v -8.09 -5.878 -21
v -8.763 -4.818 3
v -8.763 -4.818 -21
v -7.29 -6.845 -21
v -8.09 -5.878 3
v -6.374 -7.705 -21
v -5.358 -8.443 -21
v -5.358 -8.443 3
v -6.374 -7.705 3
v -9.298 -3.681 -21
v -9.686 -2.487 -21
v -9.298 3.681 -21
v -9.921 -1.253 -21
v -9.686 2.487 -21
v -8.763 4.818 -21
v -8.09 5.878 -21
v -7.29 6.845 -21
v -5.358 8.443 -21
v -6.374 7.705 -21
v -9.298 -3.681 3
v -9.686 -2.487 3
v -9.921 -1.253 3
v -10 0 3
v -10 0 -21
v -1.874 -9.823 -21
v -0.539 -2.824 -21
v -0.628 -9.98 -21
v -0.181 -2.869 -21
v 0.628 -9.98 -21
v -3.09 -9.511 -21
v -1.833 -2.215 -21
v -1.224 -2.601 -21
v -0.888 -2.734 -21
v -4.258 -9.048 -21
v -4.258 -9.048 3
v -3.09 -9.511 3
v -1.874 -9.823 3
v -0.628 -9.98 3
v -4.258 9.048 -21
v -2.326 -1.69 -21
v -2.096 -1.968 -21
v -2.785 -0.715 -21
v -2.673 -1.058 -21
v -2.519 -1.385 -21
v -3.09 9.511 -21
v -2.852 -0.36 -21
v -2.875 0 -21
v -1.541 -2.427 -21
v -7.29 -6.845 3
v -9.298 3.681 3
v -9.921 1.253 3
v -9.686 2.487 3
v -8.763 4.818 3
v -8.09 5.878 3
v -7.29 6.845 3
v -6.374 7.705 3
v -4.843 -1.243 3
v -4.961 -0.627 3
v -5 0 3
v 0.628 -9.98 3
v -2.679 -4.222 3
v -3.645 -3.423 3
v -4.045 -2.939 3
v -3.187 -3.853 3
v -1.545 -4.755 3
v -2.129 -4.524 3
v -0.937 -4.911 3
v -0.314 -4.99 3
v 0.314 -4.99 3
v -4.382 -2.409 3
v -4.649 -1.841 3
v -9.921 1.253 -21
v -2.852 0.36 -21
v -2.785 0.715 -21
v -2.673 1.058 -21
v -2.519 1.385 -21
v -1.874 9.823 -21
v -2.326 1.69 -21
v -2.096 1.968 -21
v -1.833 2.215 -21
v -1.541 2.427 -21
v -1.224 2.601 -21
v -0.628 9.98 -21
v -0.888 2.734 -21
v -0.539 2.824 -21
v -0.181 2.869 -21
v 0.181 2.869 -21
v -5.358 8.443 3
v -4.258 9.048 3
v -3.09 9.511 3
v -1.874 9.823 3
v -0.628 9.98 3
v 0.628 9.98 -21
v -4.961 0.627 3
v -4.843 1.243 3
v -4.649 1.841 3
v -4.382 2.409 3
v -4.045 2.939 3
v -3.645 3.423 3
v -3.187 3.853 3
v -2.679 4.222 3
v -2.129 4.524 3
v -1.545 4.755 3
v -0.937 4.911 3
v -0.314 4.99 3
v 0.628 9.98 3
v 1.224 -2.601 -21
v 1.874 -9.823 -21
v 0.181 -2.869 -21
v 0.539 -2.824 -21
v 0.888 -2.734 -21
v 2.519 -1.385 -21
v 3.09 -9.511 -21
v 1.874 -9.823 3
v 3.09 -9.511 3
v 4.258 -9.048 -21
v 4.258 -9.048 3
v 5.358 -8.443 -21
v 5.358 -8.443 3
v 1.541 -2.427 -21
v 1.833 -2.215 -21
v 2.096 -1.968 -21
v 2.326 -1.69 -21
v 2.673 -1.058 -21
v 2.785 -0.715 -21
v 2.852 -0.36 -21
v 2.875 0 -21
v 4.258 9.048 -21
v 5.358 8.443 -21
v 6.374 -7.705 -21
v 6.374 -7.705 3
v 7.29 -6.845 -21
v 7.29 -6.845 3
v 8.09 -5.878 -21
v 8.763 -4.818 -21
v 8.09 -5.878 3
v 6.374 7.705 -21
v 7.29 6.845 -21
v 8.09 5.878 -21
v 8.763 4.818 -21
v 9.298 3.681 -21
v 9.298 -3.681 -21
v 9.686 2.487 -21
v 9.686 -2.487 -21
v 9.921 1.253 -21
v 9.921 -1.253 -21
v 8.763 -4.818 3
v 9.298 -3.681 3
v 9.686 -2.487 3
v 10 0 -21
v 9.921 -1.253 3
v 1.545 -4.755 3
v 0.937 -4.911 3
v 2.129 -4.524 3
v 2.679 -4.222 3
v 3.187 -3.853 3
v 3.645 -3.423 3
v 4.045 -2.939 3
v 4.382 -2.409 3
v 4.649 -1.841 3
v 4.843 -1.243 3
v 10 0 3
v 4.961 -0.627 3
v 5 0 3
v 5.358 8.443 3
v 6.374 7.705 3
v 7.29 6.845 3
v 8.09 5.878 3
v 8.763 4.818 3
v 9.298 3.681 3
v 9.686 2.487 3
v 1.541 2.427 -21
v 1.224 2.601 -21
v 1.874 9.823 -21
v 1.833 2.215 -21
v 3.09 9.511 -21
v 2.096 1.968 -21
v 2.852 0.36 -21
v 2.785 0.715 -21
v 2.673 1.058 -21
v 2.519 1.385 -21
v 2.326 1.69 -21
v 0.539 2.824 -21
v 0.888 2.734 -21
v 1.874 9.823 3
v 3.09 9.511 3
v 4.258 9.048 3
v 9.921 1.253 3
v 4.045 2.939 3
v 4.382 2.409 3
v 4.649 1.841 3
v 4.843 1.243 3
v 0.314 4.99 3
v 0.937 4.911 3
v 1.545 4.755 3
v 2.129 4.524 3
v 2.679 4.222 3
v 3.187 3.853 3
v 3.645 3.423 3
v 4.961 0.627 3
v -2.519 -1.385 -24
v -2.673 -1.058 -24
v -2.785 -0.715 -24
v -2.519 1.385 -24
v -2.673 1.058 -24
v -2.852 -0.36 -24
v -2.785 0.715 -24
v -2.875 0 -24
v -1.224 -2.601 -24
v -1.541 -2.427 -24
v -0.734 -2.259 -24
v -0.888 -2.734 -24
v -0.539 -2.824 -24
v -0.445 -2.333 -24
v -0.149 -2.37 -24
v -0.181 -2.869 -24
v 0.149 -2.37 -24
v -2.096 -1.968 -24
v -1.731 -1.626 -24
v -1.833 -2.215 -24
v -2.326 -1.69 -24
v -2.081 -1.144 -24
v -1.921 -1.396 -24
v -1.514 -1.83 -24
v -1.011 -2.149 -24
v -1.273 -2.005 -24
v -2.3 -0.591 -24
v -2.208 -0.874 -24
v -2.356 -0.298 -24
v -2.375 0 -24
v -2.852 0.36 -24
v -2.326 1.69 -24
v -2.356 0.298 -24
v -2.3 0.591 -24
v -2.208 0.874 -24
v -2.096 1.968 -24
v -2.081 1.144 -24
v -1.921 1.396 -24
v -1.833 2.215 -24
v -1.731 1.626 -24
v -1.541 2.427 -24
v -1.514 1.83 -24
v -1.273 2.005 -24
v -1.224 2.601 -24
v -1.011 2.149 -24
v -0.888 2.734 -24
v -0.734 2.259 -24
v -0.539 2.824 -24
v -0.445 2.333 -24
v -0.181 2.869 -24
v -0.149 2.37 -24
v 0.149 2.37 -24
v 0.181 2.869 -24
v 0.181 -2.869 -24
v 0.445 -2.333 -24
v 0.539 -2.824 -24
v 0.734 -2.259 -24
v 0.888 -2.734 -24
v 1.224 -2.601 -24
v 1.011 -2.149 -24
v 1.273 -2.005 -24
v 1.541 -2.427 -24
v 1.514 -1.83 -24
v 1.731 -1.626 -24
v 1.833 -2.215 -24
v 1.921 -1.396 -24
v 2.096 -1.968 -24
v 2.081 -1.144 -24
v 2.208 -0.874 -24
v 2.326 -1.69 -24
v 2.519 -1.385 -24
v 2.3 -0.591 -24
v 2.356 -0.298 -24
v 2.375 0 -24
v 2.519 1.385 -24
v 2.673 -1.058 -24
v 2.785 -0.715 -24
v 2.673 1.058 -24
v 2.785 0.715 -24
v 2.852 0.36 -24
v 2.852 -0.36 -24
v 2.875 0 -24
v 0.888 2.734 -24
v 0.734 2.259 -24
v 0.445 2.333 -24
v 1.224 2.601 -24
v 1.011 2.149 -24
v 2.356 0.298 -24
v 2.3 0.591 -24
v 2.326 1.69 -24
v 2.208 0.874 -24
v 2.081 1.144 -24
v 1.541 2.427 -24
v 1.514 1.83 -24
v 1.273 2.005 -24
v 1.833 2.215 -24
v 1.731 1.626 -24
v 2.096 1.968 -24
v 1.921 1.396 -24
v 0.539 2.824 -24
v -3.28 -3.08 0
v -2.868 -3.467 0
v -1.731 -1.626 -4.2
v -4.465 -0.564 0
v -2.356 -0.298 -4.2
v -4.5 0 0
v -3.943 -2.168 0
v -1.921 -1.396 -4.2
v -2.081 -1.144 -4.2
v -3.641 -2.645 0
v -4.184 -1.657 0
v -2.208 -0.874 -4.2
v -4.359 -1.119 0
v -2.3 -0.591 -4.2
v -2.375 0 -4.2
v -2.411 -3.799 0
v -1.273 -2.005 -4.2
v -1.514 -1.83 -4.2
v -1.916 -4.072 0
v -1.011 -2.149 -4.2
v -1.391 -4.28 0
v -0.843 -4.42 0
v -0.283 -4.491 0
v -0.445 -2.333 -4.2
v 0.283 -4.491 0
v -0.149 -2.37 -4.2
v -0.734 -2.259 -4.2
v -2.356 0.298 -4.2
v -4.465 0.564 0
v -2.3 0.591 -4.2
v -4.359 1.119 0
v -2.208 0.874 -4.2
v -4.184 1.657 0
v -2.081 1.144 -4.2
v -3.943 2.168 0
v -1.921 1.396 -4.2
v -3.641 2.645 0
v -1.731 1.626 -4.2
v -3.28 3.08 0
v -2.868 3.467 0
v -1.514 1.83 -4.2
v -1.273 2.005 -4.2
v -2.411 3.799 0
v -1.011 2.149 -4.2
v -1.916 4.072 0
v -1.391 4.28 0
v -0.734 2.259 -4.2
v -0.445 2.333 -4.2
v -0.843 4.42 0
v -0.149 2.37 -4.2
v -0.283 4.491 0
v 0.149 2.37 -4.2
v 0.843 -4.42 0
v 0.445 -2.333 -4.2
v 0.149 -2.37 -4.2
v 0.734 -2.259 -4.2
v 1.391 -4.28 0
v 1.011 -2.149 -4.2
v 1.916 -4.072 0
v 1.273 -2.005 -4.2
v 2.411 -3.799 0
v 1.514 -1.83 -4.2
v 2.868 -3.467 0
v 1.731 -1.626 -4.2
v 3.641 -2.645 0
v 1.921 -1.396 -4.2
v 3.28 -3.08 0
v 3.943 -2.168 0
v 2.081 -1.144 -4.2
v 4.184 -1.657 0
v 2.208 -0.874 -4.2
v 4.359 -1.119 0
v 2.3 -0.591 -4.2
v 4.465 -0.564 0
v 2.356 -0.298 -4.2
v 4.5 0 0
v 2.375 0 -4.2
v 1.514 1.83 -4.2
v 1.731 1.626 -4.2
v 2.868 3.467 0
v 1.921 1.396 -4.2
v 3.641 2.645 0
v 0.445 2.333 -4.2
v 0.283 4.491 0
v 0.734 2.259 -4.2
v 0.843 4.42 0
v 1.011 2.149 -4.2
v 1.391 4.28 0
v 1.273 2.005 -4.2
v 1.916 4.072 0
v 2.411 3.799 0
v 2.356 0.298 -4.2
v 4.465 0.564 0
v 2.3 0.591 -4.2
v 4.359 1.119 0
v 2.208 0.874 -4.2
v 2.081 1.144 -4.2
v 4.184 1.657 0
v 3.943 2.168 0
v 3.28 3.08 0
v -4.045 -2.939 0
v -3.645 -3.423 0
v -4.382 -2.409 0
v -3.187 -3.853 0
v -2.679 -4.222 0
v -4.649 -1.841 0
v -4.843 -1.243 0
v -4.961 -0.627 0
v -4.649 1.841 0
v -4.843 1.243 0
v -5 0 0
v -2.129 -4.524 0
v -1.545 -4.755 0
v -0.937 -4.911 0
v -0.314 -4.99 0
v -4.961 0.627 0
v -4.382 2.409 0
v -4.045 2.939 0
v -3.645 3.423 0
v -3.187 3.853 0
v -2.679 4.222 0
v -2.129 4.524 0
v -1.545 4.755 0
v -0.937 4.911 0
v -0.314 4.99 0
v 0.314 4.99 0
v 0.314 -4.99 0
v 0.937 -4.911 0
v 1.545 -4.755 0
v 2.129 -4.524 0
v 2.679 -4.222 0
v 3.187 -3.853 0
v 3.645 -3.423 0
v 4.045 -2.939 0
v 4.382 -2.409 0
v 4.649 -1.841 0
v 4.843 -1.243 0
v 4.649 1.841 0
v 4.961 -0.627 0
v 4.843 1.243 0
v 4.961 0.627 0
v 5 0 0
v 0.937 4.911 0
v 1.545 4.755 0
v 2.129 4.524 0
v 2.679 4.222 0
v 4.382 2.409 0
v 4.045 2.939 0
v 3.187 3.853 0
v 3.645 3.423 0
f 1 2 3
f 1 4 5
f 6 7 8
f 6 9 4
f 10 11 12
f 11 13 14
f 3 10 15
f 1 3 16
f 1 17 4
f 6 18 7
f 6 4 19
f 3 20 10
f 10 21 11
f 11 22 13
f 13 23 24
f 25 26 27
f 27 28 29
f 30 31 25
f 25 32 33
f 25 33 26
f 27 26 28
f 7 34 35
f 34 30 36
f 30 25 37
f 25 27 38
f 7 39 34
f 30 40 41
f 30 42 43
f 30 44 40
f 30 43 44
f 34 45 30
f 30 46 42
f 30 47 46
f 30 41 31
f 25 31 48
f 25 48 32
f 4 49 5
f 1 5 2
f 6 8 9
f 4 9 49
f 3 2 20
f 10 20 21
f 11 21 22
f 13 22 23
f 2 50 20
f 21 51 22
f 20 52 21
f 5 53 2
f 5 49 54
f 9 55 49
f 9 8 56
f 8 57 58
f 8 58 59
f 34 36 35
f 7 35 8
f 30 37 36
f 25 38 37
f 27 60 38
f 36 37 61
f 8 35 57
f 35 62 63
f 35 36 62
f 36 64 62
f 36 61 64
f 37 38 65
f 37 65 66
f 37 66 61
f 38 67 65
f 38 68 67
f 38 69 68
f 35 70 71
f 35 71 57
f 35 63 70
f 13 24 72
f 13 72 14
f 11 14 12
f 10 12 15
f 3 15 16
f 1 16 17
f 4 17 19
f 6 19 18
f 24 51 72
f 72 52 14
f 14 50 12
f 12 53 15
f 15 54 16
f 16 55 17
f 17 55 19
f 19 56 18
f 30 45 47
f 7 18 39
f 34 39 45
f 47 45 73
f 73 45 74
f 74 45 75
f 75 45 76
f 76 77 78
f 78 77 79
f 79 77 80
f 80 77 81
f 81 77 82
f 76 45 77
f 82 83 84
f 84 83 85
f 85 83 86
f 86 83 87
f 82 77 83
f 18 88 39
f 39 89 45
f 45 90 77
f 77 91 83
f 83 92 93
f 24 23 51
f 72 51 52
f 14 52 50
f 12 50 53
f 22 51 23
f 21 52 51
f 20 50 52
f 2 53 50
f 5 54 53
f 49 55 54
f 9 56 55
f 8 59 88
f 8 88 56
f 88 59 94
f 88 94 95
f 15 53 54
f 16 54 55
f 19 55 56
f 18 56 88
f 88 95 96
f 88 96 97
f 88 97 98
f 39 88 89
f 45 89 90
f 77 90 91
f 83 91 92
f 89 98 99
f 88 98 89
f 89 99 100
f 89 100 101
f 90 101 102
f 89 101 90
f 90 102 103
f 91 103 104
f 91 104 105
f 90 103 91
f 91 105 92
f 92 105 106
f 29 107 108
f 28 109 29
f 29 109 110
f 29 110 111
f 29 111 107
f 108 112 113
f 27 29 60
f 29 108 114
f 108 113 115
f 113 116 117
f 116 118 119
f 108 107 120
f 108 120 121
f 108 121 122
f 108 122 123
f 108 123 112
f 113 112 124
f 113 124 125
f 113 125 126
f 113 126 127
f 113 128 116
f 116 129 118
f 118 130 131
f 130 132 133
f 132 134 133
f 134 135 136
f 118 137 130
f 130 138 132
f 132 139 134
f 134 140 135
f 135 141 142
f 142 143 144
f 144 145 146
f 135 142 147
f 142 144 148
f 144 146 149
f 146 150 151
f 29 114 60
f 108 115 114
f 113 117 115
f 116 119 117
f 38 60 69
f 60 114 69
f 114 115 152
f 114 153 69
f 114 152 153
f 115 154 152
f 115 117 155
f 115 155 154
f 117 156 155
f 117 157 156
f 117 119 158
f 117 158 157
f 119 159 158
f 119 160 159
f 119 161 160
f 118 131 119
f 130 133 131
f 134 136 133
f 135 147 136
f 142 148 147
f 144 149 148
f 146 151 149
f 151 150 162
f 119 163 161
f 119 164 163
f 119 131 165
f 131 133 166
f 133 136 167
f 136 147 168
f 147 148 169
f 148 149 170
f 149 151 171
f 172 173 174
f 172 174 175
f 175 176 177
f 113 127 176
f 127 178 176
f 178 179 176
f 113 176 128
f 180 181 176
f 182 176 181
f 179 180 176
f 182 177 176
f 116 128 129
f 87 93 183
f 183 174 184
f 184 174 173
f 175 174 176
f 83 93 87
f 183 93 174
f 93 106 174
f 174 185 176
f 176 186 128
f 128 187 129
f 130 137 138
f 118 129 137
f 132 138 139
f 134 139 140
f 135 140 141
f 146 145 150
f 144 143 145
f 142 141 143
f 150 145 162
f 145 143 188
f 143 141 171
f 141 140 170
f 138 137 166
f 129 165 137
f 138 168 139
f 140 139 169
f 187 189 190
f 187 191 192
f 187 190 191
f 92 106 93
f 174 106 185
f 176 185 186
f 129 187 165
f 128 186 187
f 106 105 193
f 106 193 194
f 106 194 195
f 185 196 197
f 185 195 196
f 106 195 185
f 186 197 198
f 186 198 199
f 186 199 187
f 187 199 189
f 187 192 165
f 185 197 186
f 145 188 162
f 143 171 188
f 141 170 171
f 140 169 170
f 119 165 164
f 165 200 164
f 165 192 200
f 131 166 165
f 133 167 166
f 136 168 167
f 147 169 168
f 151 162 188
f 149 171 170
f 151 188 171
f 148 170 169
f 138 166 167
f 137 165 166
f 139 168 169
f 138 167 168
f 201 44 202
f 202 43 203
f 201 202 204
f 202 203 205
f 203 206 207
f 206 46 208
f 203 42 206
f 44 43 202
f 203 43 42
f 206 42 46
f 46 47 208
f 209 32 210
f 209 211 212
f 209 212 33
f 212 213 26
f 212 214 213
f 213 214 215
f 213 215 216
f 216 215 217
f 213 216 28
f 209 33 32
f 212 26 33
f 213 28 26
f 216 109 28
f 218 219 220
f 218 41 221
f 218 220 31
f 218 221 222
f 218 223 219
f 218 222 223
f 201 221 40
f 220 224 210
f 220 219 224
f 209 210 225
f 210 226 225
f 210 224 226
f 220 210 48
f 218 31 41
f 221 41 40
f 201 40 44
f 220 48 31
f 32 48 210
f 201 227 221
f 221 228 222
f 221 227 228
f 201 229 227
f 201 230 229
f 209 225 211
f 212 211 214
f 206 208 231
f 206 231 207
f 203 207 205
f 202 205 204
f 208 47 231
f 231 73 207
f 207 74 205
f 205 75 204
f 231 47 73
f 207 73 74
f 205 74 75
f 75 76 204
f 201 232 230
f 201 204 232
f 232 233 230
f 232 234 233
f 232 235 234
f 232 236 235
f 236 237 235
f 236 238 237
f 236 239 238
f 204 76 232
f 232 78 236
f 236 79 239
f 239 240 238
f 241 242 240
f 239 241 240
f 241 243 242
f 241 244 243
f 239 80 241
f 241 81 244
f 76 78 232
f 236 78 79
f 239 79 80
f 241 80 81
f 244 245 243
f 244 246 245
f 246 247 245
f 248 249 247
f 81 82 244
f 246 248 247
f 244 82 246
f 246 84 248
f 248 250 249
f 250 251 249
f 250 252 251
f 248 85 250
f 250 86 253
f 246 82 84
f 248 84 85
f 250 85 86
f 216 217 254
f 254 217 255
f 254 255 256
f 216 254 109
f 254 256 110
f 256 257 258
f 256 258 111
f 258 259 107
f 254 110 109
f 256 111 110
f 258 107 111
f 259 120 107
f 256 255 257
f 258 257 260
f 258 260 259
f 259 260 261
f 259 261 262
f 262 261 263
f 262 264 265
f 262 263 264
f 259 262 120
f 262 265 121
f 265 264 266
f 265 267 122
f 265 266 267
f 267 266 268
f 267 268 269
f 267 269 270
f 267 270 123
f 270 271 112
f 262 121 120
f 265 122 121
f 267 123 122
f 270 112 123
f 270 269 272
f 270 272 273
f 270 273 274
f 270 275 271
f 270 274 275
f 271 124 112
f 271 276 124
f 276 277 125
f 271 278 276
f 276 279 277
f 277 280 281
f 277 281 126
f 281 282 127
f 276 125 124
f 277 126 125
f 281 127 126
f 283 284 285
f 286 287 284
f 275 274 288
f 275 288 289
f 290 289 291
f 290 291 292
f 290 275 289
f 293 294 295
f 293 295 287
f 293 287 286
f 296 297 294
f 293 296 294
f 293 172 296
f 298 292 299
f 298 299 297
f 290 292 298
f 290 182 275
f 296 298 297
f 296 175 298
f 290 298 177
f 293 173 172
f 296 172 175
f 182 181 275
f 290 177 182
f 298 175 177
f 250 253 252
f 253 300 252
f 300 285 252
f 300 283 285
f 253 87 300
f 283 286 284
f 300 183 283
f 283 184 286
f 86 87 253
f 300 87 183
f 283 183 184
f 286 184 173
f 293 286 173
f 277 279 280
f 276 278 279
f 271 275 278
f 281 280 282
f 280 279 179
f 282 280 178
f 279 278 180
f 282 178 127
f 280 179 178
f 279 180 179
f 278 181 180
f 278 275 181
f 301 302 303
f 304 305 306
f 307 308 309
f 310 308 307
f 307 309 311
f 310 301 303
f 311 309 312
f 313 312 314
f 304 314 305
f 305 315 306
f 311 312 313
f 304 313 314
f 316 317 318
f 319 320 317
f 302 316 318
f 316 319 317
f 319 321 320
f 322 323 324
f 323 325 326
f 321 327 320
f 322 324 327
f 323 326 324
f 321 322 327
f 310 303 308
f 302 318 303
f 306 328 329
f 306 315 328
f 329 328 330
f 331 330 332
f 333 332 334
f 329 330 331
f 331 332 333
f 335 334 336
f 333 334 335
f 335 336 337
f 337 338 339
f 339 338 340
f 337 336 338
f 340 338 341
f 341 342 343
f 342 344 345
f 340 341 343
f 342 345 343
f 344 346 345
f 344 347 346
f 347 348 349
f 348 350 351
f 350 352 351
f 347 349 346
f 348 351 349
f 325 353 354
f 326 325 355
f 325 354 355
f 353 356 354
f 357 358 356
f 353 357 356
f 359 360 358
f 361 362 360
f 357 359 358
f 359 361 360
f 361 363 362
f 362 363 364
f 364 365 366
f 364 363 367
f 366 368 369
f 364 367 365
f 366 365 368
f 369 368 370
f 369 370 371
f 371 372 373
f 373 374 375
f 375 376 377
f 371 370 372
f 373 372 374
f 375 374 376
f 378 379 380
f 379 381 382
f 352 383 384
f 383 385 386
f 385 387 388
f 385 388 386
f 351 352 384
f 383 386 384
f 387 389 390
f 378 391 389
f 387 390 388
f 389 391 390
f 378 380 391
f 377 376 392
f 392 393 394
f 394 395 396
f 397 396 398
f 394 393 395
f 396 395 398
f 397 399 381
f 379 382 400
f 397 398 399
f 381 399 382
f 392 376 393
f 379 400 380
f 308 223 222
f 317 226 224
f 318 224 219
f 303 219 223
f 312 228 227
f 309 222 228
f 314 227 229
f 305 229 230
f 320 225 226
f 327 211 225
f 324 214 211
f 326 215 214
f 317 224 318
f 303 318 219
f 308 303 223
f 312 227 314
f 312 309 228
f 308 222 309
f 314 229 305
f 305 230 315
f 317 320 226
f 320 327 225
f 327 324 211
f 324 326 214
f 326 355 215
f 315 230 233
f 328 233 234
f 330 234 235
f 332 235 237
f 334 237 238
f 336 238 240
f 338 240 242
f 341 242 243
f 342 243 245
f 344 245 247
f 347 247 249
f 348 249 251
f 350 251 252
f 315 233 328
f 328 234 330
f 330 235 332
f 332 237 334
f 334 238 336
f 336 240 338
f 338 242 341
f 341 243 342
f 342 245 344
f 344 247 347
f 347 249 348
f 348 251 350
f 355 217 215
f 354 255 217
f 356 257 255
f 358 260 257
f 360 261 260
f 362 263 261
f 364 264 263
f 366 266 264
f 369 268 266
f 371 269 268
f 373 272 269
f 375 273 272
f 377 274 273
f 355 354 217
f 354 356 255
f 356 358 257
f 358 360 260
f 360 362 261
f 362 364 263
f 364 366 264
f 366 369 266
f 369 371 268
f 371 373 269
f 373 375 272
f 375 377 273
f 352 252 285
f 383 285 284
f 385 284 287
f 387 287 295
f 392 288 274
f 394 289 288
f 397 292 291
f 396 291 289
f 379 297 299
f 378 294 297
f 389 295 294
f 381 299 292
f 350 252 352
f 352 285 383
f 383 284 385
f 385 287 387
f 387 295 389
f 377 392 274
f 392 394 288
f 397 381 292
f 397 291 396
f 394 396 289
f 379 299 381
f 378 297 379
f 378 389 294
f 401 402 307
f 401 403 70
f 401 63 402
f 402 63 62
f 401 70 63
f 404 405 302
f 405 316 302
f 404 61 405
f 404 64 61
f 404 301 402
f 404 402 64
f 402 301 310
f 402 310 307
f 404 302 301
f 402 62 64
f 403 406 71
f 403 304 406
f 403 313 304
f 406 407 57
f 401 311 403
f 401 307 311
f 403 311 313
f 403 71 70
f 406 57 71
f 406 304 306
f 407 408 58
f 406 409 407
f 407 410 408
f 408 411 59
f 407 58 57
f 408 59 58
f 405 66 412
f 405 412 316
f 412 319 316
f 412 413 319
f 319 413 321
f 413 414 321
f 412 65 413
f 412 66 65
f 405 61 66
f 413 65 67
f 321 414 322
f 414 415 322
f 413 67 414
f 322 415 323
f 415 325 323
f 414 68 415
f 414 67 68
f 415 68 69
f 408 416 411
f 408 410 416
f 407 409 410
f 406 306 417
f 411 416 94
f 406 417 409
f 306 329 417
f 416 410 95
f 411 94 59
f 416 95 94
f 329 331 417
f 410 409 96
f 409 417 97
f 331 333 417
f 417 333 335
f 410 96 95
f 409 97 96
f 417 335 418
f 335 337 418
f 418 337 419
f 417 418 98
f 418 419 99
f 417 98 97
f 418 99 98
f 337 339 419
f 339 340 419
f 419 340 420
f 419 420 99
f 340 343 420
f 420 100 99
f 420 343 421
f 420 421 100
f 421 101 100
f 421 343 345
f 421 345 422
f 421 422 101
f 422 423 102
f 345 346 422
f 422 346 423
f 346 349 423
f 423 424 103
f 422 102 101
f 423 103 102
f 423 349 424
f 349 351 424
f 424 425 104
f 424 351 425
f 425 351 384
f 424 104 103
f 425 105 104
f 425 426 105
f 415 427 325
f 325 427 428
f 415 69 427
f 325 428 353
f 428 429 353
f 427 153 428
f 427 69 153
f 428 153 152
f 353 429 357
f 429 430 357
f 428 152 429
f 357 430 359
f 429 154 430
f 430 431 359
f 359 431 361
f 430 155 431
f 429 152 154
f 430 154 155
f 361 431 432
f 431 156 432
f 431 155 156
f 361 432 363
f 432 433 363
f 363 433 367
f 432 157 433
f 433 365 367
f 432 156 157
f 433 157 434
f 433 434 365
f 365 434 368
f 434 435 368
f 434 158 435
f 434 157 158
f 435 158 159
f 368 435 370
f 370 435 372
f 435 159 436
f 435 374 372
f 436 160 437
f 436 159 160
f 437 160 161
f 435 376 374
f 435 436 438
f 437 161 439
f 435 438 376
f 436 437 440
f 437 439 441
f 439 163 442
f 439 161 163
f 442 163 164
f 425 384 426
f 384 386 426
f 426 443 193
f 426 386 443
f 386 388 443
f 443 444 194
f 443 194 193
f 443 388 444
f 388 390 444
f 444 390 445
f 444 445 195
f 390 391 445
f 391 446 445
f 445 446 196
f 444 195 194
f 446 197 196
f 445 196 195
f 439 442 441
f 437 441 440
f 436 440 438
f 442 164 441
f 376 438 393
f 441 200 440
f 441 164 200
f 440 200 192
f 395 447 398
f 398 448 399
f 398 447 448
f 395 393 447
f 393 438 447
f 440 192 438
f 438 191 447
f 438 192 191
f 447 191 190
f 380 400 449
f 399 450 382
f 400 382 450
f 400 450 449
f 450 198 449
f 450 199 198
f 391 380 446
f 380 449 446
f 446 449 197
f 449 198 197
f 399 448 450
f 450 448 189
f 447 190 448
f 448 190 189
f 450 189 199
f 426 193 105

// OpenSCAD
$fn = 50;


difference() {
	union() {
		translate(v = [0, 0, -21.0000000000]) {
			cylinder(h = 24, r = 10.0000000000);
		}
		#translate(v = [0, 0, -24.0000000000]) {
			cylinder(h = 24, r = 2.8750000000);
		}
	}
	union() {
		translate(v = [0, 0, 0]) {
			rotate(a = [0, 0, 0]) {
				difference() {
					union() {
						translate(v = [0, 0, -24.0000000000]) {
							cylinder(h = 24, r = 2.2500000000);
						}
						translate(v = [0, 0, -4.2000000000]) {
							cylinder(h = 4.2000000000, r1 = 2.3750000000, r2 = 4.5000000000);
						}
						translate(v = [0, 0, -24.0000000000]) {
							cylinder(h = 24, r = 2.3750000000);
						}
						translate(v = [0, 0, -24.0000000000]) {
							cylinder(h = 24, r = 2.2500000000);
						}
					}
					union();
				}
			}
		}
		#cylinder(h = 3, r = 5.0000000000);
	}
}
